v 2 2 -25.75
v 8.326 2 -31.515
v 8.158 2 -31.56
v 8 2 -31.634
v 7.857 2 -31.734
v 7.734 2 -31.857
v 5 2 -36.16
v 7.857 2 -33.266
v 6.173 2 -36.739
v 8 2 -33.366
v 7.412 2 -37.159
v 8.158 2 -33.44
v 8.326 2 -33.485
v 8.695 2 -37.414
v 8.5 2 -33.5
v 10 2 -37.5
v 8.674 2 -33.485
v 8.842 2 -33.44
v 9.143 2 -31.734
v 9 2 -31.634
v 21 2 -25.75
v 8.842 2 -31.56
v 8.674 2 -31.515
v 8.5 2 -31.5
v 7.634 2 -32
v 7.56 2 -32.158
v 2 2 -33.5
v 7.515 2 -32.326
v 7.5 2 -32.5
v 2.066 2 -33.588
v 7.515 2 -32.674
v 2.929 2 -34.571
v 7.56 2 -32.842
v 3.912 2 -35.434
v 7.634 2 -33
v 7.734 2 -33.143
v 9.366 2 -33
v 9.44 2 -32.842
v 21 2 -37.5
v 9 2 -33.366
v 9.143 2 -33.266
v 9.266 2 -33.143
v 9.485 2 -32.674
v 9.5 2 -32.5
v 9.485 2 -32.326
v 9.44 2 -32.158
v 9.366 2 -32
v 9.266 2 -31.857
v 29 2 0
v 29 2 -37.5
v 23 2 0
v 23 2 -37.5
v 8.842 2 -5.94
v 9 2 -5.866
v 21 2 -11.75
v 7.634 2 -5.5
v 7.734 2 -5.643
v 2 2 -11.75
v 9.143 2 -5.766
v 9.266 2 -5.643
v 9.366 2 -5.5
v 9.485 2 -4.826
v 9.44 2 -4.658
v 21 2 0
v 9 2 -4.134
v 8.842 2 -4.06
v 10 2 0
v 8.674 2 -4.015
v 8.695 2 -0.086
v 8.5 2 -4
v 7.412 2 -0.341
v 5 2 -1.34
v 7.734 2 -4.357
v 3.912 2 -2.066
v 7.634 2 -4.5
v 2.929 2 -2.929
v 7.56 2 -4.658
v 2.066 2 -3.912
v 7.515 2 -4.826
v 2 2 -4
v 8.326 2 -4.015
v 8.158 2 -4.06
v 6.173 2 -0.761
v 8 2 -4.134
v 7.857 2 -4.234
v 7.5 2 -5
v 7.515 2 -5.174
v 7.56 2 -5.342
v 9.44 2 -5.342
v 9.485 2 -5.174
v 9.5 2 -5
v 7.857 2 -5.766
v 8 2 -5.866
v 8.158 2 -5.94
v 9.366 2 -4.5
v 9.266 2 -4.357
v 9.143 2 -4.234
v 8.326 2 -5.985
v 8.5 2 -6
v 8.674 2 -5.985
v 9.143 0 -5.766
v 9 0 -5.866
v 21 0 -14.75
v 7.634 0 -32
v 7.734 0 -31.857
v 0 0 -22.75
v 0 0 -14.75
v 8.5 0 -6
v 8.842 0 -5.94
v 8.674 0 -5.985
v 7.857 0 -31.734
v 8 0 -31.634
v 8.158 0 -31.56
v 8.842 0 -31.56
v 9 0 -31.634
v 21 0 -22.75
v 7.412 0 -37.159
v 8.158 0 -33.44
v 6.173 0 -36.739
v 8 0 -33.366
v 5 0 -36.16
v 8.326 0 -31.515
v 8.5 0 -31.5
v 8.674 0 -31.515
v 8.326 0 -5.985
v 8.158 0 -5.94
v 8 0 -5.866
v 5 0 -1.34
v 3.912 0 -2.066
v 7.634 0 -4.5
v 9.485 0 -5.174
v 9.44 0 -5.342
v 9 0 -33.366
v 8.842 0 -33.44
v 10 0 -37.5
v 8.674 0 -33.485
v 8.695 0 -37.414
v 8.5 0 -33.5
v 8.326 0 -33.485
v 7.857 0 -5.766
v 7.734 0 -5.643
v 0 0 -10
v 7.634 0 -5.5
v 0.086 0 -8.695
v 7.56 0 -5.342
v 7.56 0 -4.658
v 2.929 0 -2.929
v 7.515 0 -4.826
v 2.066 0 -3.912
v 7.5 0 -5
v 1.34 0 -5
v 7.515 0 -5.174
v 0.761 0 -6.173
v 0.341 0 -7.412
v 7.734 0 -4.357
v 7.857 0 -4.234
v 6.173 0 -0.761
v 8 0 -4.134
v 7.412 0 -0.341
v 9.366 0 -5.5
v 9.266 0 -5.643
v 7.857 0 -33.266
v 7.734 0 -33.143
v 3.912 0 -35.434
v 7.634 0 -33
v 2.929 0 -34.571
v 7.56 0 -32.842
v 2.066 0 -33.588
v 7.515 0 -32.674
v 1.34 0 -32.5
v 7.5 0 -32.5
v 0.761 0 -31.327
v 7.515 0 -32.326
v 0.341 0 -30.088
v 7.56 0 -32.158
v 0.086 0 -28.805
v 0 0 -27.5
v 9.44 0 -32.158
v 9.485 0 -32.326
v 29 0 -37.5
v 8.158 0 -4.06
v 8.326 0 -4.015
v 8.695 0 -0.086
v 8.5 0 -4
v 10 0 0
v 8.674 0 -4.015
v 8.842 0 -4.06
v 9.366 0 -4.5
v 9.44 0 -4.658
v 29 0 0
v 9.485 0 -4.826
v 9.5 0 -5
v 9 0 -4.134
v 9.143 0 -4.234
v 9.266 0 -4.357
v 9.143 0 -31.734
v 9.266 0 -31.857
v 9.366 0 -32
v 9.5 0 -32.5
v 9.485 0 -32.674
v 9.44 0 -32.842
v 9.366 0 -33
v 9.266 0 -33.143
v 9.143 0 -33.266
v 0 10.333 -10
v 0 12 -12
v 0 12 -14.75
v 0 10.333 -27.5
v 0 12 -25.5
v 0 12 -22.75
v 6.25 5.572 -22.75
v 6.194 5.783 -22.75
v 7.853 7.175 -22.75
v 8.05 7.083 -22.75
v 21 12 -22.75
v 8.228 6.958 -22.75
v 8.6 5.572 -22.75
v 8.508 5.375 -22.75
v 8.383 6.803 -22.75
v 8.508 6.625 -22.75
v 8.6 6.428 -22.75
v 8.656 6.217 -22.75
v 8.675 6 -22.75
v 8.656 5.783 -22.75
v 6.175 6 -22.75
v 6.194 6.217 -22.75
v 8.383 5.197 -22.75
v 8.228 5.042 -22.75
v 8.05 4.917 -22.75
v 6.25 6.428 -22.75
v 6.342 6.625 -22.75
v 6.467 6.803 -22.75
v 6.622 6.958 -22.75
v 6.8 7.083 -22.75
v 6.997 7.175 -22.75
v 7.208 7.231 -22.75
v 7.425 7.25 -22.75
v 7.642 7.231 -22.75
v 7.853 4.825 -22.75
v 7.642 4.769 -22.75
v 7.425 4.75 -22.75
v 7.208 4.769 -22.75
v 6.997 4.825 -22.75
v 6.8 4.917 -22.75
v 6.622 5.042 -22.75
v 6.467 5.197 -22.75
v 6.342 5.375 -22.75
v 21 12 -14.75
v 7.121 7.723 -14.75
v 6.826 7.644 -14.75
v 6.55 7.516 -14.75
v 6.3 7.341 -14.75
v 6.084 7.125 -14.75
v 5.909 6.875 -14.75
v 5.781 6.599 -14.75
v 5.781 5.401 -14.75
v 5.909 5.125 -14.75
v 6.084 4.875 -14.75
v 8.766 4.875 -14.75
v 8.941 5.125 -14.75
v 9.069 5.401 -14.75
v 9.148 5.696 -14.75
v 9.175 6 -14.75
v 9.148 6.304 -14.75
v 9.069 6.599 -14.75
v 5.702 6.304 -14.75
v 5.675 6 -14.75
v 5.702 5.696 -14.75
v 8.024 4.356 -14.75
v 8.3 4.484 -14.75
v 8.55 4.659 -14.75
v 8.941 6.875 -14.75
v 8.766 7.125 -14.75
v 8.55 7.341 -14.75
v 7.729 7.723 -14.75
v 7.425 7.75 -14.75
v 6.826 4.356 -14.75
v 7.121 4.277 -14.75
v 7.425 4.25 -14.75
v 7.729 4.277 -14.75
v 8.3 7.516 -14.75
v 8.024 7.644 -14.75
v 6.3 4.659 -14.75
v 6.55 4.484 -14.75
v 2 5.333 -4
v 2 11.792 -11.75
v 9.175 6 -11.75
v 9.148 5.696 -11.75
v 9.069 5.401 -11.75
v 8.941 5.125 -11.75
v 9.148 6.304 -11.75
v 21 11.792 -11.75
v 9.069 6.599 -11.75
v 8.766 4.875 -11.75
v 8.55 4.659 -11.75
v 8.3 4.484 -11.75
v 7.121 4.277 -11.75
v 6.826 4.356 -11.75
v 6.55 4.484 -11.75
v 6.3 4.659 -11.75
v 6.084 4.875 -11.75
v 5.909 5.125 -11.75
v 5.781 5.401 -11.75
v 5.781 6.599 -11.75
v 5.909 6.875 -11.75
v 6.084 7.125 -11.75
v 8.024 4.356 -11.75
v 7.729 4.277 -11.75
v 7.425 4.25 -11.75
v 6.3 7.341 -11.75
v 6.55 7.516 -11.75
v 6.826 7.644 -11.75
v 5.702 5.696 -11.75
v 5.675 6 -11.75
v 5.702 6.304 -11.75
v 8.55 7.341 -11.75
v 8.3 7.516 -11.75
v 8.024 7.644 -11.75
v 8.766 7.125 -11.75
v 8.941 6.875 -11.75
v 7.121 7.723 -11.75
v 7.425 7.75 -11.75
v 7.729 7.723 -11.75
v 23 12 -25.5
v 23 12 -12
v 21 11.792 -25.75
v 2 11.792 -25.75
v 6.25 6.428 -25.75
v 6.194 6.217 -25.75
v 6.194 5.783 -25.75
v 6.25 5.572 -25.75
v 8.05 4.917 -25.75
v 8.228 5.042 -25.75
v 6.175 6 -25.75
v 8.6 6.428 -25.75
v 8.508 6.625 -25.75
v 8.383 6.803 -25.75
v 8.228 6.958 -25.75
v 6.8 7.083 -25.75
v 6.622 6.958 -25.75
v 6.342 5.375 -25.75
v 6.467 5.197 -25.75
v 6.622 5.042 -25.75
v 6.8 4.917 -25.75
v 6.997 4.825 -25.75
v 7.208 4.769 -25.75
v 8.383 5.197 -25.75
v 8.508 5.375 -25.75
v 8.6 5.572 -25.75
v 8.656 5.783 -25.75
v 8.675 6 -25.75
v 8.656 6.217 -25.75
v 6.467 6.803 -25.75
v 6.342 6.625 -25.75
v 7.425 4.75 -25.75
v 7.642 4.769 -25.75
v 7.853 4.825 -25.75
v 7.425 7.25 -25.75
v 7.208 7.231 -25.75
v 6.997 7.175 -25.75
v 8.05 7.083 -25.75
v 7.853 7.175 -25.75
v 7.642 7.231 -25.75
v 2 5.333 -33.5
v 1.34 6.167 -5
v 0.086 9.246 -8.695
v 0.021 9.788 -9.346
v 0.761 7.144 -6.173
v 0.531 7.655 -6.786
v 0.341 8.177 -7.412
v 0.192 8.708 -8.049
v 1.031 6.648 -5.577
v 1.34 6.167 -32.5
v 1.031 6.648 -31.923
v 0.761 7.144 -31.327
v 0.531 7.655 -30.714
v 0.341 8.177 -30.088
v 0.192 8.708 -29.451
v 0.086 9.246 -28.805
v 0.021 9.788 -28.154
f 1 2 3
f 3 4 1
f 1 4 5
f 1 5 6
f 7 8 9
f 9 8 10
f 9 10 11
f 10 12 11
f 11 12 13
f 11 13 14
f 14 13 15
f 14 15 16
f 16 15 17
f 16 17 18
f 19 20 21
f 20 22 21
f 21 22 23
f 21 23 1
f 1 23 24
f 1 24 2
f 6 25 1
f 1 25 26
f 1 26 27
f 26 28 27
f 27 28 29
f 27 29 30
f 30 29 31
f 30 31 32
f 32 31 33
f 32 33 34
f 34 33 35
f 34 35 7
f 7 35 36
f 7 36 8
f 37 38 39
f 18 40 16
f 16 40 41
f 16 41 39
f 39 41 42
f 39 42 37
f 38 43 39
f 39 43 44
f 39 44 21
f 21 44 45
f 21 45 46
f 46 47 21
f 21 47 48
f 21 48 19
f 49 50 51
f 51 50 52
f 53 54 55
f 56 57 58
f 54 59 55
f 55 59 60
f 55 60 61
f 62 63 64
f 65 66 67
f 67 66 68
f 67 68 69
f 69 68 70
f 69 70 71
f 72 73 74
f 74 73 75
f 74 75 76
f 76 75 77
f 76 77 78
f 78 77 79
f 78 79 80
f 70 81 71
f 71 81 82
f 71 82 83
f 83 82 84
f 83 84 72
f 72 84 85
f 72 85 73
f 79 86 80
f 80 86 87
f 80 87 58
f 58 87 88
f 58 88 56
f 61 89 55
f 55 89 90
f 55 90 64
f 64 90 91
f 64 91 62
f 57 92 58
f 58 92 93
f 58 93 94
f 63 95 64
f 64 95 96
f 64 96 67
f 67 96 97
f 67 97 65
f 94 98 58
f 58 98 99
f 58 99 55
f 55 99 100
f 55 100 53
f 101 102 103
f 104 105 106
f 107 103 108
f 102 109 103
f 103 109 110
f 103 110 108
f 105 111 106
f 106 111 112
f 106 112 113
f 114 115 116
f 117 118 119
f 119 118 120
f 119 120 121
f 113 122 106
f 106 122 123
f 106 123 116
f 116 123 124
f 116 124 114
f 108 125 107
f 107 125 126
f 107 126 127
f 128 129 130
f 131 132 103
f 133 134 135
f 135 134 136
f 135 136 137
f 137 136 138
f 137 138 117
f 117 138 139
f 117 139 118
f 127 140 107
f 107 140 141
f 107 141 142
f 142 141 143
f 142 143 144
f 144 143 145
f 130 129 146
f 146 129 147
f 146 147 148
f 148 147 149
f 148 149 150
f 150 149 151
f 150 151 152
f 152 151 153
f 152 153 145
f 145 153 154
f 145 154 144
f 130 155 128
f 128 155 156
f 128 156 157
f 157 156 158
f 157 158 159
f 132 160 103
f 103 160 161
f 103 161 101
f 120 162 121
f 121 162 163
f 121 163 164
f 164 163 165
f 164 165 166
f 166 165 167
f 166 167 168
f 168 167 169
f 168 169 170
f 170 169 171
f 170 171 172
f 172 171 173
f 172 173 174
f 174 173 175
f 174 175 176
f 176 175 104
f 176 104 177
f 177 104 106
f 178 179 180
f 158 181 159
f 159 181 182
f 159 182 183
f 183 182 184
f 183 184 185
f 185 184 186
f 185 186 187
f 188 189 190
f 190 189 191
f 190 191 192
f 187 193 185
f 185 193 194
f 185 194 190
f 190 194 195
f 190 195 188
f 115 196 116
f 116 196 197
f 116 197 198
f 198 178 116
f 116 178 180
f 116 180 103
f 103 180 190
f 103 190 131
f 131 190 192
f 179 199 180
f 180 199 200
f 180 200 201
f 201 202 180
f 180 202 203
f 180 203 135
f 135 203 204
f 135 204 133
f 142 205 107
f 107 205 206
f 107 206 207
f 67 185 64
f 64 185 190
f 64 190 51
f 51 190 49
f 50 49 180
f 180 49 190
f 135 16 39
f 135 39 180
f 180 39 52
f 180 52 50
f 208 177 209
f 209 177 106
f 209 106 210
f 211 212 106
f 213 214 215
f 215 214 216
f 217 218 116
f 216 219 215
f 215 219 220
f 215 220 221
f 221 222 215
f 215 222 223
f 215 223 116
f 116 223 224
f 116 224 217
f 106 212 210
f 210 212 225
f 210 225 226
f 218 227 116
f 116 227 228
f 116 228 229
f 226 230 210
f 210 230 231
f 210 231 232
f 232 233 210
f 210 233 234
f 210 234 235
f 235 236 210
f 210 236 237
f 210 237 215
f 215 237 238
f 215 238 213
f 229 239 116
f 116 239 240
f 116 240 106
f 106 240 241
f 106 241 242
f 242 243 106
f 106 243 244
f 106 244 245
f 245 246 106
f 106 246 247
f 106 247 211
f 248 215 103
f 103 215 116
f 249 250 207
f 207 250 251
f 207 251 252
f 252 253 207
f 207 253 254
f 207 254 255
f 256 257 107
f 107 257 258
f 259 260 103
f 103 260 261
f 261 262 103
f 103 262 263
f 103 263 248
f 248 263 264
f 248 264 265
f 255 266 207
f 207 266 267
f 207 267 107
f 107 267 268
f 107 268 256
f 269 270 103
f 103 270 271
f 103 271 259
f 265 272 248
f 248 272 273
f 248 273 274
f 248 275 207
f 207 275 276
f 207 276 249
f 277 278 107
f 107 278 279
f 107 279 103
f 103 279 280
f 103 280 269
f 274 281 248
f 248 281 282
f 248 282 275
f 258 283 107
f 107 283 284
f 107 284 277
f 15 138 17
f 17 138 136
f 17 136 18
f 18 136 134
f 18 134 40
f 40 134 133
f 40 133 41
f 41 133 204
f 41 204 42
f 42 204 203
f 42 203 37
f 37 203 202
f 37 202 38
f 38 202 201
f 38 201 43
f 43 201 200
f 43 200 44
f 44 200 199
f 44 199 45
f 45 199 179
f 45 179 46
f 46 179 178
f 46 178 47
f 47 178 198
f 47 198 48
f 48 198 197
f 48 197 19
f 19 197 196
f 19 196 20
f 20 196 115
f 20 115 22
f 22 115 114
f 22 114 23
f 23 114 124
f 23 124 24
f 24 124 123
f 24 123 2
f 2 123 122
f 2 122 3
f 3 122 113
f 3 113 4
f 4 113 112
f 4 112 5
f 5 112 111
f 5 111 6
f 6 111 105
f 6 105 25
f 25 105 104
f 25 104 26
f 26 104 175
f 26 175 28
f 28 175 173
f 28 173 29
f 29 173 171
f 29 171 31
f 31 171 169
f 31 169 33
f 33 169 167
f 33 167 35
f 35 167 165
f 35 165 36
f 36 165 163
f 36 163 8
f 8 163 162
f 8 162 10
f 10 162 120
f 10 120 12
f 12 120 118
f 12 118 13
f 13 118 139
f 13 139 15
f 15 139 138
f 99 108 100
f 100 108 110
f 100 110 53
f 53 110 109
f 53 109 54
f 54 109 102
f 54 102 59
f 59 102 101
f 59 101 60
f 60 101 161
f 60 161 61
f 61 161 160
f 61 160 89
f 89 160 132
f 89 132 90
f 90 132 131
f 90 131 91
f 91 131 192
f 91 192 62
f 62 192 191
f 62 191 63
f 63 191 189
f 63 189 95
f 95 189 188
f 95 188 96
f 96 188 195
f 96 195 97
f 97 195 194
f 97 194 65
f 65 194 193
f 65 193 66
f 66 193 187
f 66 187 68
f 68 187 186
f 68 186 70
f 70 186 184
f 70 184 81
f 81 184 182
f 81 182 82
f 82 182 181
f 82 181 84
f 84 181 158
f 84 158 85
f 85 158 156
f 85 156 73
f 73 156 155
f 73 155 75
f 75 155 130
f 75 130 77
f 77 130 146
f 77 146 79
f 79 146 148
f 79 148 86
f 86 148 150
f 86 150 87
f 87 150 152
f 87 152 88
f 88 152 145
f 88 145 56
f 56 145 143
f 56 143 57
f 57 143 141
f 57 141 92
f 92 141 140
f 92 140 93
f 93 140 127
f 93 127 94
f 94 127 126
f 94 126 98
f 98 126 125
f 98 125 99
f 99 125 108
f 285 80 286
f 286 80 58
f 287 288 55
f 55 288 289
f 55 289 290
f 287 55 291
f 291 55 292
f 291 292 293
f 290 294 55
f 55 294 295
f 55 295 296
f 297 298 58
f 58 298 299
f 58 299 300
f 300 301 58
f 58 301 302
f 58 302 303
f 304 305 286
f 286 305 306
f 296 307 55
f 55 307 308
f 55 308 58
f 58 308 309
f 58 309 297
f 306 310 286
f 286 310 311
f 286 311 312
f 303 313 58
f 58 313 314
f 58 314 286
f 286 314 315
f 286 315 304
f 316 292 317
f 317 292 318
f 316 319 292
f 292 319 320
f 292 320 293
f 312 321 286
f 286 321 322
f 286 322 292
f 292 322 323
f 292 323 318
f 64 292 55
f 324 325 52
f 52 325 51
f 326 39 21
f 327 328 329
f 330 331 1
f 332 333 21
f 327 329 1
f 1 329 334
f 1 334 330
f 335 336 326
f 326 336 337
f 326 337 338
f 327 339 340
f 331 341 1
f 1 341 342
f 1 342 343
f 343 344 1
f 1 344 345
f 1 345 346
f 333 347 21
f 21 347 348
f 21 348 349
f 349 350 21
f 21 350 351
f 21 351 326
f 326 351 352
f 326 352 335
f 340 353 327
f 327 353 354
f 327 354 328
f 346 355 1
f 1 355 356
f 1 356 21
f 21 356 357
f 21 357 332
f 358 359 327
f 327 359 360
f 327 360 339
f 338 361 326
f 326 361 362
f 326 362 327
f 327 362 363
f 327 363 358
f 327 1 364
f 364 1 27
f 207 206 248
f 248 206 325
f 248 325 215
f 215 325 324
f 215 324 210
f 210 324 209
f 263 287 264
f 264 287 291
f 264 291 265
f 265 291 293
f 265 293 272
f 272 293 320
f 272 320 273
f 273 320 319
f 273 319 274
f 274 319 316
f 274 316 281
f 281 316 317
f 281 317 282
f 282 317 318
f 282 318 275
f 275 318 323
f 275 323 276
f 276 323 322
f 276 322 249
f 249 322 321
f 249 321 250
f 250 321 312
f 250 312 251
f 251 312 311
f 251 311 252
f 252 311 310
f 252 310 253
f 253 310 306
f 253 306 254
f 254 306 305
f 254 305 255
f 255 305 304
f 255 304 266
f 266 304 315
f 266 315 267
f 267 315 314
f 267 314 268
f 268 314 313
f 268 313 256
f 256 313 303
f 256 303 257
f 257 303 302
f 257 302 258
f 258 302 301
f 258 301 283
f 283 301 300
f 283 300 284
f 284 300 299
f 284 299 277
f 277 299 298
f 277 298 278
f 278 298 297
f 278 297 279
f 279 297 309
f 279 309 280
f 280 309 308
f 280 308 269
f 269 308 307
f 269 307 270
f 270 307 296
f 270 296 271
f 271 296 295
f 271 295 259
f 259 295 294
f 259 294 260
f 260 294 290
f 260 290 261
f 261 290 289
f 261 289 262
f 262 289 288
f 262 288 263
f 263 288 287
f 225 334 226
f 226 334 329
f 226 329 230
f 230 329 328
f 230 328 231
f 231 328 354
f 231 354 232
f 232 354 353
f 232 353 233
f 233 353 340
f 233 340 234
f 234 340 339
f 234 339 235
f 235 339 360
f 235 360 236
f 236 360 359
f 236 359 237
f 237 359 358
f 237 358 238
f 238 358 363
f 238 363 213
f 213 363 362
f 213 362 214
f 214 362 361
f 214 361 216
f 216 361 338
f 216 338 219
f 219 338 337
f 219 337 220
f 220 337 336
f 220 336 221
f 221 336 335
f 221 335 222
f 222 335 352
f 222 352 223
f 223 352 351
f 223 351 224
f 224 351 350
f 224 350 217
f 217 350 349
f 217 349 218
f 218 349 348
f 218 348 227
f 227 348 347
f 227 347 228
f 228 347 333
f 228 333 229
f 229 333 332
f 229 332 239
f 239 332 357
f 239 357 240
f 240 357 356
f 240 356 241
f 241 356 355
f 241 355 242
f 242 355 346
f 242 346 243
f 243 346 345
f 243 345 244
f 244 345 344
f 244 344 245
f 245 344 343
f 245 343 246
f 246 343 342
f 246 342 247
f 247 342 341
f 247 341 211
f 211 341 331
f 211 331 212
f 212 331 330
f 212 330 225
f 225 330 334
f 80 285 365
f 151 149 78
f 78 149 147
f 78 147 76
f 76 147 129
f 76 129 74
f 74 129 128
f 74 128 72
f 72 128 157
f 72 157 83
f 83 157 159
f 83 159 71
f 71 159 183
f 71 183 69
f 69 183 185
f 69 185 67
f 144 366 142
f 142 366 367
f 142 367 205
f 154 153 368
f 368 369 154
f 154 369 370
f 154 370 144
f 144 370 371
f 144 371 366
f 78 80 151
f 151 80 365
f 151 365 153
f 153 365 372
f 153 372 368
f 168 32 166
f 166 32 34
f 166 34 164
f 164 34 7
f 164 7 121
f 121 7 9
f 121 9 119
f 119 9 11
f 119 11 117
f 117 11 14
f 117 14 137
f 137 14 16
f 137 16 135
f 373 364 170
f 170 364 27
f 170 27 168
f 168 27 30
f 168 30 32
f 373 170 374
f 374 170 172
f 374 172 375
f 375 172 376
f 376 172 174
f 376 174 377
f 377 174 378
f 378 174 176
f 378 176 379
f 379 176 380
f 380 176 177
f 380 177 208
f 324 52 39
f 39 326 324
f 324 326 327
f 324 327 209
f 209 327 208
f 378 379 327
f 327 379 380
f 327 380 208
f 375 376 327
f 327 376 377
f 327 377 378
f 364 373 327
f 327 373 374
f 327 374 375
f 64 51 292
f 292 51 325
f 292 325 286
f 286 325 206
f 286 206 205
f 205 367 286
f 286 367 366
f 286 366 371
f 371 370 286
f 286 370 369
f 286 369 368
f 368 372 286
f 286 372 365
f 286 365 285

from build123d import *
from OCP.BRepFilletAPI import BRepFilletAPI_MakeChamfer

# Parameters (mm, degrees)
TOPSKETCH1_R                         = 1
TOPBOSS_EXTRUDE1_DEPTH               = 2
RAILCLAMPBOSS_EXTRUDE2_DEPTH         = 10
RAILSCREWSIDE1HOLECUT_EXTRUDE1_REACH = 42.596
RAILSCREWSIDE1HOLESKETCH3_R          = 1.75
RAILSCREWSIDE2HOLECUT_EXTRUDE2_REACH = 42.596
RAILSCREWSIDE2HOLESKETCH4_R          = 1.25
FILLET1_R                            = 10
CHAMFER2_SIZE                        = 10
CHAMFER2_SIZE2                       = 12


with BuildPart() as part:
    # TopSketch1 → TopBoss-Extrude1 (new body)
    with BuildSketch(Plane(origin=(0, 0, 0), x_dir=(1, 0, 0), z_dir=(0, 1, 0))):
        Polygon((0, 0), (29, 0), (29, 37.5), (0, 37.5), (0, 22.75), (21, 22.75), (21, 14.75), (0, 14.75), align=None)
        with Locations(Location((8.5, 32.5, 0), (0, 0, 270))):
            Circle(TOPSKETCH1_R, mode=Mode.SUBTRACT)
        with Locations(Location((8.5, 5, 0), (0, 0, 270))):
            Circle(TOPSKETCH1_R, mode=Mode.SUBTRACT)
    extrude(amount=TOPBOSS_EXTRUDE1_DEPTH)

    # RailClampSketch2 → RailClampBoss-Extrude2 (add)
    with BuildSketch(Plane(origin=(0, 2, 0), x_dir=(1, 0, 0), z_dir=(0, 1, 0))):
        Polygon((0, 37.5), (0, 22.75), (21, 22.75), (21, 14.75), (0, 14.75), (0, 0), (2, 0), (2, 11.75), (21, 11.75), (21, 0), (23, 0), (23, 37.5), (21, 37.5), (21, 25.75), (2, 25.75), (2, 37.5), align=None)
    extrude(amount=RAILCLAMPBOSS_EXTRUDE2_DEPTH)

    # RailScrewSide1HoleSketch3 → RailScrewSide1HoleCut-Extrude1 (cut, up to next)
    with BuildSketch(Plane.XY.offset(-11.75), mode=Mode.PRIVATE) as railscrewside1holecut_extrude1_sk1:
        with Locations((7.425, 6)):
            Circle(RAILSCREWSIDE1HOLESKETCH3_R)
    railscrewside1holecut_extrude1_tool1 = extrude(railscrewside1holecut_extrude1_sk1.sketch, amount=-RAILSCREWSIDE1HOLECUT_EXTRUDE1_REACH, mode=Mode.PRIVATE) & part.part
    add(railscrewside1holecut_extrude1_tool1.solids().sort_by_distance((7.425, 6, -11.75))[0], mode=Mode.SUBTRACT)

    # RailScrewSide2HoleSketch4 → RailScrewSide2HoleCut-Extrude2 (cut, up to next)
    with BuildSketch(Plane(origin=(0, 0, -25.75), x_dir=(-1, 0, 0), z_dir=(0, 0, -1)), mode=Mode.PRIVATE) as railscrewside2holecut_extrude2_sk1:
        with Locations((-7.425, 6)):
            Circle(RAILSCREWSIDE2HOLESKETCH4_R)
    railscrewside2holecut_extrude2_tool1 = extrude(railscrewside2holecut_extrude2_sk1.sketch, amount=-RAILSCREWSIDE2HOLECUT_EXTRUDE2_REACH, mode=Mode.PRIVATE) & part.part
    add(railscrewside2holecut_extrude2_tool1.solids().sort_by_distance((7.425, 6, -25.75))[0], mode=Mode.SUBTRACT)

    # Fillet1
    fillet1_edges = [part.edges().sort_by_distance(p)[0] for p in [
        (0, 6, 0),
        (0, 6, -37.5),
    ]]
    fillet(fillet1_edges, radius=FILLET1_R)

    # Chamfer2: one chamfer whose edges measure the first distance from different faces: ONE call of the kernel's chamfer builder (chamfer() names one face for all edges)
    chamfer2_edges_1 = [part.edges().sort_by_distance(p)[0] for p in [
        (22, 12, -37.5),
    ]]
    chamfer2_side_1 = [part.faces().sort_by_distance(p)[0] for p in [
        (15.5, 1.775277949, -37.5),
    ]]
    chamfer2_edges_2 = [part.edges().sort_by_distance(p)[0] for p in [
        (22, 12, 0),
    ]]
    chamfer2_side_2 = [part.faces().sort_by_distance(p)[0] for p in [
        (15.5, 1.775277949, 0),
    ]]
    chamfer2 = BRepFilletAPI_MakeChamfer(part.part.solid().wrapped)
    for e in chamfer2_edges_1:
        chamfer2.Add(CHAMFER2_SIZE, CHAMFER2_SIZE2, e.wrapped, chamfer2_side_1[0].wrapped)  # the first distance lies on this face
    for e in chamfer2_edges_2:
        chamfer2.Add(CHAMFER2_SIZE, CHAMFER2_SIZE2, e.wrapped, chamfer2_side_2[0].wrapped)  # the first distance lies on this face
    add(Compound.cast(chamfer2.Shape()), mode=Mode.REPLACE)


solid = part.part
